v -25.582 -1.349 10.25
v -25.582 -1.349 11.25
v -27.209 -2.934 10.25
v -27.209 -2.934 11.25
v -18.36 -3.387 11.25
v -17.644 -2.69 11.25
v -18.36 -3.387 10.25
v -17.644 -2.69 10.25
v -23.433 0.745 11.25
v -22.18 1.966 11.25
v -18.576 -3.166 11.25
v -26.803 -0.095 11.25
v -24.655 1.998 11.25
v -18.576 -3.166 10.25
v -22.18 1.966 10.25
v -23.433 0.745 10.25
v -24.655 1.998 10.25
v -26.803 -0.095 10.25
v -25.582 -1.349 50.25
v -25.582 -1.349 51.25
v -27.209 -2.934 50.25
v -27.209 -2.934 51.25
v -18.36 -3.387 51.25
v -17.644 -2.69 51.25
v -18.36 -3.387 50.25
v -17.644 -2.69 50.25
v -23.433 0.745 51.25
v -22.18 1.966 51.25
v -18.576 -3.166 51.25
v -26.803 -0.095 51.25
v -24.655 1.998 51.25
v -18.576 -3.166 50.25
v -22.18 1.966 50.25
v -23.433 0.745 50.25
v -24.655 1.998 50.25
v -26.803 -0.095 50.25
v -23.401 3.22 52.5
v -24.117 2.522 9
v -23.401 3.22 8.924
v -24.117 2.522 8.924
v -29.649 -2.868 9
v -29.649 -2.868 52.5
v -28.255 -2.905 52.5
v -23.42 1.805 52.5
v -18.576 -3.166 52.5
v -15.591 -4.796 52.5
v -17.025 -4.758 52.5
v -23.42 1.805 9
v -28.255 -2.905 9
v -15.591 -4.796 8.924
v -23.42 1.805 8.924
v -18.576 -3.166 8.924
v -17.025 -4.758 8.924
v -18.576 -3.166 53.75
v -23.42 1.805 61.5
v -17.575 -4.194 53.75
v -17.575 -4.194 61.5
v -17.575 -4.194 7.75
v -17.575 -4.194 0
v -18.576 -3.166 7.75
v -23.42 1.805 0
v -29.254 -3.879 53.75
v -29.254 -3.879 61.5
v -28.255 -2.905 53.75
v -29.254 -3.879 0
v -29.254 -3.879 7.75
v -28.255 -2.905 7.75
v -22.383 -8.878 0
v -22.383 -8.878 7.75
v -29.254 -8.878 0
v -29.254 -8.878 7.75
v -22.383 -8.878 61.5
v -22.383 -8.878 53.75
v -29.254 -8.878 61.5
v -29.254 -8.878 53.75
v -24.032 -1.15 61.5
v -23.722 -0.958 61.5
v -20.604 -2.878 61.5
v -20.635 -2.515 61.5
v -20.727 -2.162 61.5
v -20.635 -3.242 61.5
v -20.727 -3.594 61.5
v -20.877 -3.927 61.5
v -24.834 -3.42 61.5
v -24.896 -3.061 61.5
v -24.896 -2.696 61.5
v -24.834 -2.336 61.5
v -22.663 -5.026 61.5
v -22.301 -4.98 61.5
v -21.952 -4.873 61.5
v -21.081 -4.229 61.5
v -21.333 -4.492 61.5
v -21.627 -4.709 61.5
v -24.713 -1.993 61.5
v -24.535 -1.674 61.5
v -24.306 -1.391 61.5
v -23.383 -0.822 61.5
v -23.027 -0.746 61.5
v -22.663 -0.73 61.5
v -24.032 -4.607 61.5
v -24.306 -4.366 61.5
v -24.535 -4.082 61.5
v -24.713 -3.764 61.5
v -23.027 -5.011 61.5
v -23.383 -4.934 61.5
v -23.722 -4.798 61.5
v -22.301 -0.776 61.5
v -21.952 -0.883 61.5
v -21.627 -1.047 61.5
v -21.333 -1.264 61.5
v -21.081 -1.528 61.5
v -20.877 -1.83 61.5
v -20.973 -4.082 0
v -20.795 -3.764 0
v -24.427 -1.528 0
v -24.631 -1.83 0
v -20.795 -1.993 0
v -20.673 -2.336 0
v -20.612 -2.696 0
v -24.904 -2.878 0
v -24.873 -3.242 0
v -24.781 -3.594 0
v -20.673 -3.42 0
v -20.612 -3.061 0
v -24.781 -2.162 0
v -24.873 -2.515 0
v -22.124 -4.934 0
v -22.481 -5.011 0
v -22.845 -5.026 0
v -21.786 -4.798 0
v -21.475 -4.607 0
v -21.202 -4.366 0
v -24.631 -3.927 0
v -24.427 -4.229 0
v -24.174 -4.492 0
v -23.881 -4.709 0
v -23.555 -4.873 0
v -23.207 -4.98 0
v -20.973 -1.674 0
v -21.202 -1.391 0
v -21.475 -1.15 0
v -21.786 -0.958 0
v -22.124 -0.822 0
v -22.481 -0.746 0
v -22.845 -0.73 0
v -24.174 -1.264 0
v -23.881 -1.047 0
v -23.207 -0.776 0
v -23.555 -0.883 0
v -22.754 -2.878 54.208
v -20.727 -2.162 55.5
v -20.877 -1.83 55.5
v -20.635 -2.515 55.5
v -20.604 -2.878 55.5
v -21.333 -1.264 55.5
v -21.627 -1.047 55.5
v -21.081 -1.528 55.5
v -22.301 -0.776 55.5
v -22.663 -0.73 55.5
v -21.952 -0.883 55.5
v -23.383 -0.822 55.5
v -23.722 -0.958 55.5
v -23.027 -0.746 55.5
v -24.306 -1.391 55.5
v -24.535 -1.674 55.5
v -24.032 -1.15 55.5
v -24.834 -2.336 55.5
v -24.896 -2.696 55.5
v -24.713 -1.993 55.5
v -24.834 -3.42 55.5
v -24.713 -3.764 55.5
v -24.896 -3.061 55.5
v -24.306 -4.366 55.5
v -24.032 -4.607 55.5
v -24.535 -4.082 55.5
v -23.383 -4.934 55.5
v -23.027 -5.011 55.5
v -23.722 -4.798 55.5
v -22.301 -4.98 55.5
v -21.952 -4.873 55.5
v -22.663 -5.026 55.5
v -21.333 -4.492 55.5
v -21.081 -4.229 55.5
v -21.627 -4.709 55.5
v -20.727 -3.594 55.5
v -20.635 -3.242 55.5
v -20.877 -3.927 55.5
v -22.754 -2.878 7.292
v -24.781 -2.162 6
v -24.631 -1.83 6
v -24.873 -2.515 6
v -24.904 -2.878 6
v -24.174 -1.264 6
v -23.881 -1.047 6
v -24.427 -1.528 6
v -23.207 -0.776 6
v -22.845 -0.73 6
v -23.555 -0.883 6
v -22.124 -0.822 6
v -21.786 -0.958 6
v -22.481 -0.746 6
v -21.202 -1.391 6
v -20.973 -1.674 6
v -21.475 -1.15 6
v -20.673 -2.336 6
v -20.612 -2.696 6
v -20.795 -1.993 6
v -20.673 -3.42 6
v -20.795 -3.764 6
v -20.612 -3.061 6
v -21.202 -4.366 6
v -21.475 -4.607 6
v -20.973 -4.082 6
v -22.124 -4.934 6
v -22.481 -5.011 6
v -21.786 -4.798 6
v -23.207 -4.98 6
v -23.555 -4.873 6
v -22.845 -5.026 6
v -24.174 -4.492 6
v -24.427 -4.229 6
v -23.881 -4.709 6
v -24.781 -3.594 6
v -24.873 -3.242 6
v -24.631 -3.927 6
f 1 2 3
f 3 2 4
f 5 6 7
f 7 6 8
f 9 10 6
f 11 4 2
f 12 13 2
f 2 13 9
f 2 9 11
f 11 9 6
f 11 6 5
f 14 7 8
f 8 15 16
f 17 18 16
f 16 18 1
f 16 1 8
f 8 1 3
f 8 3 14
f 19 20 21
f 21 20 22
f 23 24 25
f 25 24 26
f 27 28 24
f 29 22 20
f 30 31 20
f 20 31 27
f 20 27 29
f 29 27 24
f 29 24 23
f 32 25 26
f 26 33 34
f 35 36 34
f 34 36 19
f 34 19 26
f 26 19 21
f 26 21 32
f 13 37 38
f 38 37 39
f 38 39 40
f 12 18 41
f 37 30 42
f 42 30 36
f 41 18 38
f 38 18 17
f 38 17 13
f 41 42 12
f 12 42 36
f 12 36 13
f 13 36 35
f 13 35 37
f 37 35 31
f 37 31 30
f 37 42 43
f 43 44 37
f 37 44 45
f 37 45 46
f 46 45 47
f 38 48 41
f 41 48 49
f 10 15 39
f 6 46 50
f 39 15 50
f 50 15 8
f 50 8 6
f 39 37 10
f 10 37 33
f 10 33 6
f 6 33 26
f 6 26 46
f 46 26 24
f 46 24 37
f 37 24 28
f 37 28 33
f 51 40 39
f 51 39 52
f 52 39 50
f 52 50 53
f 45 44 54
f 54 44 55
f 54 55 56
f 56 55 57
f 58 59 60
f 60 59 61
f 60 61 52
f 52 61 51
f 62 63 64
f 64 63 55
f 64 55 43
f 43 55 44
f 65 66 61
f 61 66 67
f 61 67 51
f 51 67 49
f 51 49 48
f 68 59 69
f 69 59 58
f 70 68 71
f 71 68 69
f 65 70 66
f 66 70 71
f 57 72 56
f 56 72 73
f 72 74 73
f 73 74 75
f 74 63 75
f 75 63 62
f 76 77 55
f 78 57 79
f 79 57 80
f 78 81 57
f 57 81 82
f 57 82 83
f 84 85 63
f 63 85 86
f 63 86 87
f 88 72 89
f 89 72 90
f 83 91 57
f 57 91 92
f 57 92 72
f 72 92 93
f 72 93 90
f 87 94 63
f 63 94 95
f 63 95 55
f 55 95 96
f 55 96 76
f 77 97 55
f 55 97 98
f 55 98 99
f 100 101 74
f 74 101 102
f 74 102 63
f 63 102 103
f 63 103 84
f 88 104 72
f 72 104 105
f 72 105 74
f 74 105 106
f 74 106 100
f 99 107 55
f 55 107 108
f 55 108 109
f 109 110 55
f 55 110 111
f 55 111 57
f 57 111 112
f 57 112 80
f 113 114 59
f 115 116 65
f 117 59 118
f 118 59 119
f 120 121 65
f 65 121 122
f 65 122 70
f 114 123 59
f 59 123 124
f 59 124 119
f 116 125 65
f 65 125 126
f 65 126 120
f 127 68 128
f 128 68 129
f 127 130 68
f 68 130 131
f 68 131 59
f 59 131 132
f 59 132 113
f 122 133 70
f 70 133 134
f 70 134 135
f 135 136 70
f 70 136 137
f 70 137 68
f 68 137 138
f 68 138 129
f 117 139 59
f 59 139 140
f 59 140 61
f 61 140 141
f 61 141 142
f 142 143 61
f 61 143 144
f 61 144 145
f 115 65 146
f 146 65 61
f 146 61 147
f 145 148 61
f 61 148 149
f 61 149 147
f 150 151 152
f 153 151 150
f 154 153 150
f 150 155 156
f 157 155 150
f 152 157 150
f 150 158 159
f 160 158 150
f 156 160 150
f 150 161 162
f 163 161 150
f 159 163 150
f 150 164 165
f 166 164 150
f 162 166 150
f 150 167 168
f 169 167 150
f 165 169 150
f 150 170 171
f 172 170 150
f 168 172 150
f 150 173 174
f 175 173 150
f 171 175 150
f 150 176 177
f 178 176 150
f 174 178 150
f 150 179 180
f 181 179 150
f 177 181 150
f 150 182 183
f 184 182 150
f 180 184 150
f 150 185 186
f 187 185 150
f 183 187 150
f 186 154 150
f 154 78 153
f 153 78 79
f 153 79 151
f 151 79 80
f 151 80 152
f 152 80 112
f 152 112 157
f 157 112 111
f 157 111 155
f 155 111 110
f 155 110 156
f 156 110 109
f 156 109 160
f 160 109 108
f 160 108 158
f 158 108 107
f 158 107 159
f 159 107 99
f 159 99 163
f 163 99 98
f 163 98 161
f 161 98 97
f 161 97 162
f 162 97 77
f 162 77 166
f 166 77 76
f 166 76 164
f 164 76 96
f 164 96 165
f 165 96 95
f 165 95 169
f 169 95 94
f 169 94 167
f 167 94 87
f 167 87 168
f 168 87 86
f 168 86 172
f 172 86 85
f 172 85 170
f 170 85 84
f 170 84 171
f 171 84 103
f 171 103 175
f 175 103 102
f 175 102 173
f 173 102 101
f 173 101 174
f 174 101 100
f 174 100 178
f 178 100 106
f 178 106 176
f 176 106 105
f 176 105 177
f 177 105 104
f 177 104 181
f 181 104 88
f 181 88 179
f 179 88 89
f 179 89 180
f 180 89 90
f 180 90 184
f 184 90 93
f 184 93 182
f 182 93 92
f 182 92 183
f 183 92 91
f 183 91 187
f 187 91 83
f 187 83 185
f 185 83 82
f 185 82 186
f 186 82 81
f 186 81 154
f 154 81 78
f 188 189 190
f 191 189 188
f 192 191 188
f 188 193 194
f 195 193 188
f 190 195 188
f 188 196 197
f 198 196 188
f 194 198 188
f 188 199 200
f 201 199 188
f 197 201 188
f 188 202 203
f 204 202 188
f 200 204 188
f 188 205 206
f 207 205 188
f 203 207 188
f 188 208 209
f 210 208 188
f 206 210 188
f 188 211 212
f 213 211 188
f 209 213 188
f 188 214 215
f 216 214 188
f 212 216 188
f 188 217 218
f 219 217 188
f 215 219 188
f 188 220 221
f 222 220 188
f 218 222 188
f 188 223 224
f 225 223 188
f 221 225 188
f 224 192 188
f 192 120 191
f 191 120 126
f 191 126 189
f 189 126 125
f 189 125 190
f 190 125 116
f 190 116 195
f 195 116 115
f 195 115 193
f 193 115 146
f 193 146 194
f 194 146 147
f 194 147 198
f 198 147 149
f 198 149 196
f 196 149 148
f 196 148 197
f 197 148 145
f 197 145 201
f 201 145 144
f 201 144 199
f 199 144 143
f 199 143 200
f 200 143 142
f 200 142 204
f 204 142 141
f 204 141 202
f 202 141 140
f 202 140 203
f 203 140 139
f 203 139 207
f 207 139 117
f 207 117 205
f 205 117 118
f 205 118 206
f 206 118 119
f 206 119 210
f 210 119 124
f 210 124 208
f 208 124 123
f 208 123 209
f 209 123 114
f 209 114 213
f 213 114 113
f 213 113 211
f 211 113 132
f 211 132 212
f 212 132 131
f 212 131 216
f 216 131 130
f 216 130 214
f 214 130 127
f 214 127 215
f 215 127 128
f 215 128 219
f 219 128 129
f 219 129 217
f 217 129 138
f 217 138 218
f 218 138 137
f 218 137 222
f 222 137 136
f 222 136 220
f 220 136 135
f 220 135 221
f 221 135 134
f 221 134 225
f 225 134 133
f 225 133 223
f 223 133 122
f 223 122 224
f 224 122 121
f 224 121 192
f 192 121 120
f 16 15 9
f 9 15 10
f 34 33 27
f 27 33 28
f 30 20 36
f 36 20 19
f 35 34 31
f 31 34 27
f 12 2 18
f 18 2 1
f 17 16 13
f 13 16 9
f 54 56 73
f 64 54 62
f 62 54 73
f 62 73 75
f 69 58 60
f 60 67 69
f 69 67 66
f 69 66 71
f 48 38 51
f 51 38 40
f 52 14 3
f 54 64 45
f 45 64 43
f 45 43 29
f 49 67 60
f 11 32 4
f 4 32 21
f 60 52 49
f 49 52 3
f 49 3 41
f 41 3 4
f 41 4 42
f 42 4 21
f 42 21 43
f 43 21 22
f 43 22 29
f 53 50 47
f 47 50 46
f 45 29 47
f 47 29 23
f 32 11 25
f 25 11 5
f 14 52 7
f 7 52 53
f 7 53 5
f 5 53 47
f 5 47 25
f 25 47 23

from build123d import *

# Parameters (mm, degrees)
BOSS_EXTRU_1_DEPTH       = 61.5
D_GAGEMENT_M41_D         = 4.3
D_GAGEMENT_M41_DEPTH     = 6
D_GAGEMENT_M41_TIP       = 1.291850331
D_GAGEMENT_M42_D         = 4.3
D_GAGEMENT_M42_DEPTH     = 6
D_GAGEMENT_M42_TIP       = 1.291850331
ESQUISSE9_W              = 1
ESQUISSE9_H              = 6.5
ENL_V_MAT_EXTRU_2_DEPTH  = 66.352343655
ESQUISSE11_W             = 3
ESQUISSE11_H             = 1
ENL_V_MAT_EXTRU_3_DEPTH  = 1
ENL_V_MAT_EXTRU_4_DEPTH  = 23
ENL_V_MAT_EXTRU_7_DEPTH  = 23
ESQUISSE16_W             = 8.145455673
ESQUISSE16_H             = 43.5
ESQUISSE16_W_2           = 3
ESQUISSE16_H_2           = 1
BOSS_EXTRU_2_DEPTH       = 1
ESQUISSE17_W             = 43.576204057
ESQUISSE17_H             = 9.375689411
ESQUISSE17_W_2           = 1
ESQUISSE17_H_2           = 6.5
BOSS_EXTRU_3_DEPTH       = 1
ESQUISSE18_W             = 16.892190225
ESQUISSE18_H             = 46
ENL_V_MAT_EXTRU_8_DEPTH  = 1
BOSS_EXTRU_4_START       = -43.576204
BOSS_EXTRU_4_DEPTH       = 43.576204
ESQUISSE23_W             = 1
ESQUISSE23_H             = 6.5
ENL_V_MAT_EXTRU_11_DEPTH = 66.811115965


with BuildPart() as part:
    # Esquisse1 → Boss.-Extru.1 (new body)
    with BuildSketch(Plane.XY):
        Polygon((-29.2538383, -8.878195219), (-29.2538383, -3.878764136), (-23.419589724, 1.805423729), (-17.574736592, -4.193731626), (-22.3828685, -8.878195219), align=None)
    extrude(amount=BOSS_EXTRU_1_DEPTH)

    # Dégagement M41
    with Locations(Plane.XY.offset(61.5)):
        with Locations((-22.7538383, -2.878195219)):
            Hole(D_GAGEMENT_M41_D / 2, depth=D_GAGEMENT_M41_DEPTH)
            with Locations((0, 0, -(D_GAGEMENT_M41_DEPTH + D_GAGEMENT_M41_TIP / 2))):  # 118° drill point
                Cone(0, D_GAGEMENT_M41_D / 2, D_GAGEMENT_M41_TIP, mode=Mode.SUBTRACT)

    # Dégagement M42
    with Locations(Plane(origin=(0, 0, 0), x_dir=(-1, 0, 0), z_dir=(0, 0, -1))):
        with Locations((22.7538383, -2.878195219)):
            Hole(D_GAGEMENT_M42_D / 2, depth=D_GAGEMENT_M42_DEPTH)
            with Locations((0, 0, -(D_GAGEMENT_M42_DEPTH + D_GAGEMENT_M42_TIP / 2))):  # 118° drill point
                Cone(0, D_GAGEMENT_M42_D / 2, D_GAGEMENT_M42_TIP, mode=Mode.SUBTRACT)

    # Esquisse9 → Enlèv. mat.-Extru.2 (cut, through all)
    with BuildSketch(Plane(origin=(-11.112445005, -10.826625609, 0), x_dir=(0, 0, -1), z_dir=(0.7162580965216612, 0.6978354671175484, 0))):
        with Locations((-50.75, 13.636169698)):
            Rectangle(ESQUISSE9_W, ESQUISSE9_H)
        with Locations((-10.75, 13.636169698)):
            Rectangle(ESQUISSE9_W, ESQUISSE9_H)
    extrude(amount=-ENL_V_MAT_EXTRU_2_DEPTH, mode=Mode.SUBTRACT)

    # Esquisse11 → Enlèv. mat.-Extru.3 (cut)
    with BuildSketch(Plane(origin=(-12.30714472, 12.632049338, 0), x_dir=(0.7162580965216613, 0.6978354671175482, 0), z_dir=(-0.6978354671175482, 0.7162580965216613, 0))):
        with Locations((-17.764582046, -50.75)):
            Rectangle(ESQUISSE11_W, ESQUISSE11_H)
        with Locations((-17.764582046, -10.75)):
            Rectangle(ESQUISSE11_W, ESQUISSE11_H)
    extrude(amount=-ENL_V_MAT_EXTRU_3_DEPTH, mode=Mode.SUBTRACT)

    # Esquisse14 → Enlèv. mat.-Extru.4 (cut)
    with BuildSketch(Plane(origin=(0, 0, 30.75), x_dir=(-1, 0, 0), z_dir=(0, 0, -1))):
        Polygon((22.3828685, -8.878195219), (29.2538383, -3.878764136), (29.2538383, -8.878195219), align=None)
    enl_v_mat_extru_4 = extrude(amount=-ENL_V_MAT_EXTRU_4_DEPTH, mode=Mode.SUBTRACT)

    # Esquisse15 → Enlèv. mat.-Extru.7 (cut)
    with BuildSketch(Plane(origin=(0, 0, 30.75), x_dir=(-1, 0, 0), z_dir=(0, 0, -1))):
        Polygon((17.574736592, -4.193731626), (22.3828685, -8.878195219), (29.2538383, -3.878764136), align=None)
    enl_v_mat_extru_7 = extrude(amount=-ENL_V_MAT_EXTRU_7_DEPTH, mode=Mode.SUBTRACT)

    # Symétrie2: Enlèv. mat.-Extru.4, Enlèv. mat.-Extru.7 across plane
    add(enl_v_mat_extru_4.mirror(Plane(origin=(0, 0, 30.75), x_dir=(1, 0, 0), z_dir=(0, 0, -1))), mode=Mode.SUBTRACT)
    add(enl_v_mat_extru_7.mirror(Plane(origin=(0, 0, 30.75), x_dir=(1, 0, 0), z_dir=(0, 0, -1))), mode=Mode.SUBTRACT)

    # Esquisse16 → Boss.-Extru.2 (add)
    with BuildSketch(Plane(origin=(-12.30714472, 12.632049338, 0), x_dir=(0.7162580965216613, 0.6978354671175481, 0), z_dir=(-0.6978354671175481, 0.7162580965216613, 0))):
        with Locations((-19.587309883, -30.75)):
            Rectangle(ESQUISSE16_W, ESQUISSE16_H)
        with Locations((-17.764582046, -10.75)):
            Rectangle(ESQUISSE16_W_2, ESQUISSE16_H_2, mode=Mode.SUBTRACT)
        with Locations((-17.764582046, -50.75)):
            Rectangle(ESQUISSE16_W_2, ESQUISSE16_H_2, mode=Mode.SUBTRACT)
    extrude(amount=BOSS_EXTRU_2_DEPTH)

    # Esquisse17 → Boss.-Extru.3 (add)
    with BuildSketch(Plane(origin=(-11.112445005, -10.826625609, 0), x_dir=(0, 0, -1), z_dir=(0.7162580965216608, 0.6978354671175485, 0))):
        with Locations((-30.711897972, 13.948324992)):
            Rectangle(ESQUISSE17_W, ESQUISSE17_H)
        with Locations((-50.75, 13.636169698)):
            Rectangle(ESQUISSE17_W_2, ESQUISSE17_H_2, mode=Mode.SUBTRACT)
        with Locations((-10.75, 13.636169698)):
            Rectangle(ESQUISSE17_W_2, ESQUISSE17_H_2, mode=Mode.SUBTRACT)
    extrude(amount=BOSS_EXTRU_3_DEPTH)

    # Esquisse18 → Enlèv. mat.-Extru.8 (cut)
    with BuildSketch(Plane(origin=(-0.12578911, -4.664303021, 0), x_dir=(-0.9996365490865532, 0.026958667072524062, 0), z_dir=(-0.026958667072524065, -0.9996365490865533, 0))):
        with Locations((22.669999121, -30.75)):
            Rectangle(ESQUISSE18_W, ESQUISSE18_H)
    extrude(amount=-ENL_V_MAT_EXTRU_8_DEPTH, mode=Mode.SUBTRACT)

    # Esquisse21 → Boss.-Extru.4 (add)
    with BuildSketch(Plane.XY.offset(52.5).offset(BOSS_EXTRU_4_START)):
        Polygon((-17.141851408, -3.205042293), (-15.591482071, -4.796340876), (-17.025300163, -4.757672998), (-18.575669499, -3.166374415), align=None)
    extrude(amount=BOSS_EXTRU_4_DEPTH)

    # Esquisse23 → Enlèv. mat.-Extru.11 (cut, through all)
    with BuildSketch(Plane(origin=(-10.396186908, -10.128790142, 0), x_dir=(0, 0, -1), z_dir=(0.7162580965216607, 0.6978354671175486, 0))):
        with Locations((-50.75, 13.636169698)):
            Rectangle(ESQUISSE23_W, ESQUISSE23_H)
        with Locations((-10.75, 13.636169698)):
            Rectangle(ESQUISSE23_W, ESQUISSE23_H)
    extrude(amount=-ENL_V_MAT_EXTRU_11_DEPTH, mode=Mode.SUBTRACT)


solid = part.part
